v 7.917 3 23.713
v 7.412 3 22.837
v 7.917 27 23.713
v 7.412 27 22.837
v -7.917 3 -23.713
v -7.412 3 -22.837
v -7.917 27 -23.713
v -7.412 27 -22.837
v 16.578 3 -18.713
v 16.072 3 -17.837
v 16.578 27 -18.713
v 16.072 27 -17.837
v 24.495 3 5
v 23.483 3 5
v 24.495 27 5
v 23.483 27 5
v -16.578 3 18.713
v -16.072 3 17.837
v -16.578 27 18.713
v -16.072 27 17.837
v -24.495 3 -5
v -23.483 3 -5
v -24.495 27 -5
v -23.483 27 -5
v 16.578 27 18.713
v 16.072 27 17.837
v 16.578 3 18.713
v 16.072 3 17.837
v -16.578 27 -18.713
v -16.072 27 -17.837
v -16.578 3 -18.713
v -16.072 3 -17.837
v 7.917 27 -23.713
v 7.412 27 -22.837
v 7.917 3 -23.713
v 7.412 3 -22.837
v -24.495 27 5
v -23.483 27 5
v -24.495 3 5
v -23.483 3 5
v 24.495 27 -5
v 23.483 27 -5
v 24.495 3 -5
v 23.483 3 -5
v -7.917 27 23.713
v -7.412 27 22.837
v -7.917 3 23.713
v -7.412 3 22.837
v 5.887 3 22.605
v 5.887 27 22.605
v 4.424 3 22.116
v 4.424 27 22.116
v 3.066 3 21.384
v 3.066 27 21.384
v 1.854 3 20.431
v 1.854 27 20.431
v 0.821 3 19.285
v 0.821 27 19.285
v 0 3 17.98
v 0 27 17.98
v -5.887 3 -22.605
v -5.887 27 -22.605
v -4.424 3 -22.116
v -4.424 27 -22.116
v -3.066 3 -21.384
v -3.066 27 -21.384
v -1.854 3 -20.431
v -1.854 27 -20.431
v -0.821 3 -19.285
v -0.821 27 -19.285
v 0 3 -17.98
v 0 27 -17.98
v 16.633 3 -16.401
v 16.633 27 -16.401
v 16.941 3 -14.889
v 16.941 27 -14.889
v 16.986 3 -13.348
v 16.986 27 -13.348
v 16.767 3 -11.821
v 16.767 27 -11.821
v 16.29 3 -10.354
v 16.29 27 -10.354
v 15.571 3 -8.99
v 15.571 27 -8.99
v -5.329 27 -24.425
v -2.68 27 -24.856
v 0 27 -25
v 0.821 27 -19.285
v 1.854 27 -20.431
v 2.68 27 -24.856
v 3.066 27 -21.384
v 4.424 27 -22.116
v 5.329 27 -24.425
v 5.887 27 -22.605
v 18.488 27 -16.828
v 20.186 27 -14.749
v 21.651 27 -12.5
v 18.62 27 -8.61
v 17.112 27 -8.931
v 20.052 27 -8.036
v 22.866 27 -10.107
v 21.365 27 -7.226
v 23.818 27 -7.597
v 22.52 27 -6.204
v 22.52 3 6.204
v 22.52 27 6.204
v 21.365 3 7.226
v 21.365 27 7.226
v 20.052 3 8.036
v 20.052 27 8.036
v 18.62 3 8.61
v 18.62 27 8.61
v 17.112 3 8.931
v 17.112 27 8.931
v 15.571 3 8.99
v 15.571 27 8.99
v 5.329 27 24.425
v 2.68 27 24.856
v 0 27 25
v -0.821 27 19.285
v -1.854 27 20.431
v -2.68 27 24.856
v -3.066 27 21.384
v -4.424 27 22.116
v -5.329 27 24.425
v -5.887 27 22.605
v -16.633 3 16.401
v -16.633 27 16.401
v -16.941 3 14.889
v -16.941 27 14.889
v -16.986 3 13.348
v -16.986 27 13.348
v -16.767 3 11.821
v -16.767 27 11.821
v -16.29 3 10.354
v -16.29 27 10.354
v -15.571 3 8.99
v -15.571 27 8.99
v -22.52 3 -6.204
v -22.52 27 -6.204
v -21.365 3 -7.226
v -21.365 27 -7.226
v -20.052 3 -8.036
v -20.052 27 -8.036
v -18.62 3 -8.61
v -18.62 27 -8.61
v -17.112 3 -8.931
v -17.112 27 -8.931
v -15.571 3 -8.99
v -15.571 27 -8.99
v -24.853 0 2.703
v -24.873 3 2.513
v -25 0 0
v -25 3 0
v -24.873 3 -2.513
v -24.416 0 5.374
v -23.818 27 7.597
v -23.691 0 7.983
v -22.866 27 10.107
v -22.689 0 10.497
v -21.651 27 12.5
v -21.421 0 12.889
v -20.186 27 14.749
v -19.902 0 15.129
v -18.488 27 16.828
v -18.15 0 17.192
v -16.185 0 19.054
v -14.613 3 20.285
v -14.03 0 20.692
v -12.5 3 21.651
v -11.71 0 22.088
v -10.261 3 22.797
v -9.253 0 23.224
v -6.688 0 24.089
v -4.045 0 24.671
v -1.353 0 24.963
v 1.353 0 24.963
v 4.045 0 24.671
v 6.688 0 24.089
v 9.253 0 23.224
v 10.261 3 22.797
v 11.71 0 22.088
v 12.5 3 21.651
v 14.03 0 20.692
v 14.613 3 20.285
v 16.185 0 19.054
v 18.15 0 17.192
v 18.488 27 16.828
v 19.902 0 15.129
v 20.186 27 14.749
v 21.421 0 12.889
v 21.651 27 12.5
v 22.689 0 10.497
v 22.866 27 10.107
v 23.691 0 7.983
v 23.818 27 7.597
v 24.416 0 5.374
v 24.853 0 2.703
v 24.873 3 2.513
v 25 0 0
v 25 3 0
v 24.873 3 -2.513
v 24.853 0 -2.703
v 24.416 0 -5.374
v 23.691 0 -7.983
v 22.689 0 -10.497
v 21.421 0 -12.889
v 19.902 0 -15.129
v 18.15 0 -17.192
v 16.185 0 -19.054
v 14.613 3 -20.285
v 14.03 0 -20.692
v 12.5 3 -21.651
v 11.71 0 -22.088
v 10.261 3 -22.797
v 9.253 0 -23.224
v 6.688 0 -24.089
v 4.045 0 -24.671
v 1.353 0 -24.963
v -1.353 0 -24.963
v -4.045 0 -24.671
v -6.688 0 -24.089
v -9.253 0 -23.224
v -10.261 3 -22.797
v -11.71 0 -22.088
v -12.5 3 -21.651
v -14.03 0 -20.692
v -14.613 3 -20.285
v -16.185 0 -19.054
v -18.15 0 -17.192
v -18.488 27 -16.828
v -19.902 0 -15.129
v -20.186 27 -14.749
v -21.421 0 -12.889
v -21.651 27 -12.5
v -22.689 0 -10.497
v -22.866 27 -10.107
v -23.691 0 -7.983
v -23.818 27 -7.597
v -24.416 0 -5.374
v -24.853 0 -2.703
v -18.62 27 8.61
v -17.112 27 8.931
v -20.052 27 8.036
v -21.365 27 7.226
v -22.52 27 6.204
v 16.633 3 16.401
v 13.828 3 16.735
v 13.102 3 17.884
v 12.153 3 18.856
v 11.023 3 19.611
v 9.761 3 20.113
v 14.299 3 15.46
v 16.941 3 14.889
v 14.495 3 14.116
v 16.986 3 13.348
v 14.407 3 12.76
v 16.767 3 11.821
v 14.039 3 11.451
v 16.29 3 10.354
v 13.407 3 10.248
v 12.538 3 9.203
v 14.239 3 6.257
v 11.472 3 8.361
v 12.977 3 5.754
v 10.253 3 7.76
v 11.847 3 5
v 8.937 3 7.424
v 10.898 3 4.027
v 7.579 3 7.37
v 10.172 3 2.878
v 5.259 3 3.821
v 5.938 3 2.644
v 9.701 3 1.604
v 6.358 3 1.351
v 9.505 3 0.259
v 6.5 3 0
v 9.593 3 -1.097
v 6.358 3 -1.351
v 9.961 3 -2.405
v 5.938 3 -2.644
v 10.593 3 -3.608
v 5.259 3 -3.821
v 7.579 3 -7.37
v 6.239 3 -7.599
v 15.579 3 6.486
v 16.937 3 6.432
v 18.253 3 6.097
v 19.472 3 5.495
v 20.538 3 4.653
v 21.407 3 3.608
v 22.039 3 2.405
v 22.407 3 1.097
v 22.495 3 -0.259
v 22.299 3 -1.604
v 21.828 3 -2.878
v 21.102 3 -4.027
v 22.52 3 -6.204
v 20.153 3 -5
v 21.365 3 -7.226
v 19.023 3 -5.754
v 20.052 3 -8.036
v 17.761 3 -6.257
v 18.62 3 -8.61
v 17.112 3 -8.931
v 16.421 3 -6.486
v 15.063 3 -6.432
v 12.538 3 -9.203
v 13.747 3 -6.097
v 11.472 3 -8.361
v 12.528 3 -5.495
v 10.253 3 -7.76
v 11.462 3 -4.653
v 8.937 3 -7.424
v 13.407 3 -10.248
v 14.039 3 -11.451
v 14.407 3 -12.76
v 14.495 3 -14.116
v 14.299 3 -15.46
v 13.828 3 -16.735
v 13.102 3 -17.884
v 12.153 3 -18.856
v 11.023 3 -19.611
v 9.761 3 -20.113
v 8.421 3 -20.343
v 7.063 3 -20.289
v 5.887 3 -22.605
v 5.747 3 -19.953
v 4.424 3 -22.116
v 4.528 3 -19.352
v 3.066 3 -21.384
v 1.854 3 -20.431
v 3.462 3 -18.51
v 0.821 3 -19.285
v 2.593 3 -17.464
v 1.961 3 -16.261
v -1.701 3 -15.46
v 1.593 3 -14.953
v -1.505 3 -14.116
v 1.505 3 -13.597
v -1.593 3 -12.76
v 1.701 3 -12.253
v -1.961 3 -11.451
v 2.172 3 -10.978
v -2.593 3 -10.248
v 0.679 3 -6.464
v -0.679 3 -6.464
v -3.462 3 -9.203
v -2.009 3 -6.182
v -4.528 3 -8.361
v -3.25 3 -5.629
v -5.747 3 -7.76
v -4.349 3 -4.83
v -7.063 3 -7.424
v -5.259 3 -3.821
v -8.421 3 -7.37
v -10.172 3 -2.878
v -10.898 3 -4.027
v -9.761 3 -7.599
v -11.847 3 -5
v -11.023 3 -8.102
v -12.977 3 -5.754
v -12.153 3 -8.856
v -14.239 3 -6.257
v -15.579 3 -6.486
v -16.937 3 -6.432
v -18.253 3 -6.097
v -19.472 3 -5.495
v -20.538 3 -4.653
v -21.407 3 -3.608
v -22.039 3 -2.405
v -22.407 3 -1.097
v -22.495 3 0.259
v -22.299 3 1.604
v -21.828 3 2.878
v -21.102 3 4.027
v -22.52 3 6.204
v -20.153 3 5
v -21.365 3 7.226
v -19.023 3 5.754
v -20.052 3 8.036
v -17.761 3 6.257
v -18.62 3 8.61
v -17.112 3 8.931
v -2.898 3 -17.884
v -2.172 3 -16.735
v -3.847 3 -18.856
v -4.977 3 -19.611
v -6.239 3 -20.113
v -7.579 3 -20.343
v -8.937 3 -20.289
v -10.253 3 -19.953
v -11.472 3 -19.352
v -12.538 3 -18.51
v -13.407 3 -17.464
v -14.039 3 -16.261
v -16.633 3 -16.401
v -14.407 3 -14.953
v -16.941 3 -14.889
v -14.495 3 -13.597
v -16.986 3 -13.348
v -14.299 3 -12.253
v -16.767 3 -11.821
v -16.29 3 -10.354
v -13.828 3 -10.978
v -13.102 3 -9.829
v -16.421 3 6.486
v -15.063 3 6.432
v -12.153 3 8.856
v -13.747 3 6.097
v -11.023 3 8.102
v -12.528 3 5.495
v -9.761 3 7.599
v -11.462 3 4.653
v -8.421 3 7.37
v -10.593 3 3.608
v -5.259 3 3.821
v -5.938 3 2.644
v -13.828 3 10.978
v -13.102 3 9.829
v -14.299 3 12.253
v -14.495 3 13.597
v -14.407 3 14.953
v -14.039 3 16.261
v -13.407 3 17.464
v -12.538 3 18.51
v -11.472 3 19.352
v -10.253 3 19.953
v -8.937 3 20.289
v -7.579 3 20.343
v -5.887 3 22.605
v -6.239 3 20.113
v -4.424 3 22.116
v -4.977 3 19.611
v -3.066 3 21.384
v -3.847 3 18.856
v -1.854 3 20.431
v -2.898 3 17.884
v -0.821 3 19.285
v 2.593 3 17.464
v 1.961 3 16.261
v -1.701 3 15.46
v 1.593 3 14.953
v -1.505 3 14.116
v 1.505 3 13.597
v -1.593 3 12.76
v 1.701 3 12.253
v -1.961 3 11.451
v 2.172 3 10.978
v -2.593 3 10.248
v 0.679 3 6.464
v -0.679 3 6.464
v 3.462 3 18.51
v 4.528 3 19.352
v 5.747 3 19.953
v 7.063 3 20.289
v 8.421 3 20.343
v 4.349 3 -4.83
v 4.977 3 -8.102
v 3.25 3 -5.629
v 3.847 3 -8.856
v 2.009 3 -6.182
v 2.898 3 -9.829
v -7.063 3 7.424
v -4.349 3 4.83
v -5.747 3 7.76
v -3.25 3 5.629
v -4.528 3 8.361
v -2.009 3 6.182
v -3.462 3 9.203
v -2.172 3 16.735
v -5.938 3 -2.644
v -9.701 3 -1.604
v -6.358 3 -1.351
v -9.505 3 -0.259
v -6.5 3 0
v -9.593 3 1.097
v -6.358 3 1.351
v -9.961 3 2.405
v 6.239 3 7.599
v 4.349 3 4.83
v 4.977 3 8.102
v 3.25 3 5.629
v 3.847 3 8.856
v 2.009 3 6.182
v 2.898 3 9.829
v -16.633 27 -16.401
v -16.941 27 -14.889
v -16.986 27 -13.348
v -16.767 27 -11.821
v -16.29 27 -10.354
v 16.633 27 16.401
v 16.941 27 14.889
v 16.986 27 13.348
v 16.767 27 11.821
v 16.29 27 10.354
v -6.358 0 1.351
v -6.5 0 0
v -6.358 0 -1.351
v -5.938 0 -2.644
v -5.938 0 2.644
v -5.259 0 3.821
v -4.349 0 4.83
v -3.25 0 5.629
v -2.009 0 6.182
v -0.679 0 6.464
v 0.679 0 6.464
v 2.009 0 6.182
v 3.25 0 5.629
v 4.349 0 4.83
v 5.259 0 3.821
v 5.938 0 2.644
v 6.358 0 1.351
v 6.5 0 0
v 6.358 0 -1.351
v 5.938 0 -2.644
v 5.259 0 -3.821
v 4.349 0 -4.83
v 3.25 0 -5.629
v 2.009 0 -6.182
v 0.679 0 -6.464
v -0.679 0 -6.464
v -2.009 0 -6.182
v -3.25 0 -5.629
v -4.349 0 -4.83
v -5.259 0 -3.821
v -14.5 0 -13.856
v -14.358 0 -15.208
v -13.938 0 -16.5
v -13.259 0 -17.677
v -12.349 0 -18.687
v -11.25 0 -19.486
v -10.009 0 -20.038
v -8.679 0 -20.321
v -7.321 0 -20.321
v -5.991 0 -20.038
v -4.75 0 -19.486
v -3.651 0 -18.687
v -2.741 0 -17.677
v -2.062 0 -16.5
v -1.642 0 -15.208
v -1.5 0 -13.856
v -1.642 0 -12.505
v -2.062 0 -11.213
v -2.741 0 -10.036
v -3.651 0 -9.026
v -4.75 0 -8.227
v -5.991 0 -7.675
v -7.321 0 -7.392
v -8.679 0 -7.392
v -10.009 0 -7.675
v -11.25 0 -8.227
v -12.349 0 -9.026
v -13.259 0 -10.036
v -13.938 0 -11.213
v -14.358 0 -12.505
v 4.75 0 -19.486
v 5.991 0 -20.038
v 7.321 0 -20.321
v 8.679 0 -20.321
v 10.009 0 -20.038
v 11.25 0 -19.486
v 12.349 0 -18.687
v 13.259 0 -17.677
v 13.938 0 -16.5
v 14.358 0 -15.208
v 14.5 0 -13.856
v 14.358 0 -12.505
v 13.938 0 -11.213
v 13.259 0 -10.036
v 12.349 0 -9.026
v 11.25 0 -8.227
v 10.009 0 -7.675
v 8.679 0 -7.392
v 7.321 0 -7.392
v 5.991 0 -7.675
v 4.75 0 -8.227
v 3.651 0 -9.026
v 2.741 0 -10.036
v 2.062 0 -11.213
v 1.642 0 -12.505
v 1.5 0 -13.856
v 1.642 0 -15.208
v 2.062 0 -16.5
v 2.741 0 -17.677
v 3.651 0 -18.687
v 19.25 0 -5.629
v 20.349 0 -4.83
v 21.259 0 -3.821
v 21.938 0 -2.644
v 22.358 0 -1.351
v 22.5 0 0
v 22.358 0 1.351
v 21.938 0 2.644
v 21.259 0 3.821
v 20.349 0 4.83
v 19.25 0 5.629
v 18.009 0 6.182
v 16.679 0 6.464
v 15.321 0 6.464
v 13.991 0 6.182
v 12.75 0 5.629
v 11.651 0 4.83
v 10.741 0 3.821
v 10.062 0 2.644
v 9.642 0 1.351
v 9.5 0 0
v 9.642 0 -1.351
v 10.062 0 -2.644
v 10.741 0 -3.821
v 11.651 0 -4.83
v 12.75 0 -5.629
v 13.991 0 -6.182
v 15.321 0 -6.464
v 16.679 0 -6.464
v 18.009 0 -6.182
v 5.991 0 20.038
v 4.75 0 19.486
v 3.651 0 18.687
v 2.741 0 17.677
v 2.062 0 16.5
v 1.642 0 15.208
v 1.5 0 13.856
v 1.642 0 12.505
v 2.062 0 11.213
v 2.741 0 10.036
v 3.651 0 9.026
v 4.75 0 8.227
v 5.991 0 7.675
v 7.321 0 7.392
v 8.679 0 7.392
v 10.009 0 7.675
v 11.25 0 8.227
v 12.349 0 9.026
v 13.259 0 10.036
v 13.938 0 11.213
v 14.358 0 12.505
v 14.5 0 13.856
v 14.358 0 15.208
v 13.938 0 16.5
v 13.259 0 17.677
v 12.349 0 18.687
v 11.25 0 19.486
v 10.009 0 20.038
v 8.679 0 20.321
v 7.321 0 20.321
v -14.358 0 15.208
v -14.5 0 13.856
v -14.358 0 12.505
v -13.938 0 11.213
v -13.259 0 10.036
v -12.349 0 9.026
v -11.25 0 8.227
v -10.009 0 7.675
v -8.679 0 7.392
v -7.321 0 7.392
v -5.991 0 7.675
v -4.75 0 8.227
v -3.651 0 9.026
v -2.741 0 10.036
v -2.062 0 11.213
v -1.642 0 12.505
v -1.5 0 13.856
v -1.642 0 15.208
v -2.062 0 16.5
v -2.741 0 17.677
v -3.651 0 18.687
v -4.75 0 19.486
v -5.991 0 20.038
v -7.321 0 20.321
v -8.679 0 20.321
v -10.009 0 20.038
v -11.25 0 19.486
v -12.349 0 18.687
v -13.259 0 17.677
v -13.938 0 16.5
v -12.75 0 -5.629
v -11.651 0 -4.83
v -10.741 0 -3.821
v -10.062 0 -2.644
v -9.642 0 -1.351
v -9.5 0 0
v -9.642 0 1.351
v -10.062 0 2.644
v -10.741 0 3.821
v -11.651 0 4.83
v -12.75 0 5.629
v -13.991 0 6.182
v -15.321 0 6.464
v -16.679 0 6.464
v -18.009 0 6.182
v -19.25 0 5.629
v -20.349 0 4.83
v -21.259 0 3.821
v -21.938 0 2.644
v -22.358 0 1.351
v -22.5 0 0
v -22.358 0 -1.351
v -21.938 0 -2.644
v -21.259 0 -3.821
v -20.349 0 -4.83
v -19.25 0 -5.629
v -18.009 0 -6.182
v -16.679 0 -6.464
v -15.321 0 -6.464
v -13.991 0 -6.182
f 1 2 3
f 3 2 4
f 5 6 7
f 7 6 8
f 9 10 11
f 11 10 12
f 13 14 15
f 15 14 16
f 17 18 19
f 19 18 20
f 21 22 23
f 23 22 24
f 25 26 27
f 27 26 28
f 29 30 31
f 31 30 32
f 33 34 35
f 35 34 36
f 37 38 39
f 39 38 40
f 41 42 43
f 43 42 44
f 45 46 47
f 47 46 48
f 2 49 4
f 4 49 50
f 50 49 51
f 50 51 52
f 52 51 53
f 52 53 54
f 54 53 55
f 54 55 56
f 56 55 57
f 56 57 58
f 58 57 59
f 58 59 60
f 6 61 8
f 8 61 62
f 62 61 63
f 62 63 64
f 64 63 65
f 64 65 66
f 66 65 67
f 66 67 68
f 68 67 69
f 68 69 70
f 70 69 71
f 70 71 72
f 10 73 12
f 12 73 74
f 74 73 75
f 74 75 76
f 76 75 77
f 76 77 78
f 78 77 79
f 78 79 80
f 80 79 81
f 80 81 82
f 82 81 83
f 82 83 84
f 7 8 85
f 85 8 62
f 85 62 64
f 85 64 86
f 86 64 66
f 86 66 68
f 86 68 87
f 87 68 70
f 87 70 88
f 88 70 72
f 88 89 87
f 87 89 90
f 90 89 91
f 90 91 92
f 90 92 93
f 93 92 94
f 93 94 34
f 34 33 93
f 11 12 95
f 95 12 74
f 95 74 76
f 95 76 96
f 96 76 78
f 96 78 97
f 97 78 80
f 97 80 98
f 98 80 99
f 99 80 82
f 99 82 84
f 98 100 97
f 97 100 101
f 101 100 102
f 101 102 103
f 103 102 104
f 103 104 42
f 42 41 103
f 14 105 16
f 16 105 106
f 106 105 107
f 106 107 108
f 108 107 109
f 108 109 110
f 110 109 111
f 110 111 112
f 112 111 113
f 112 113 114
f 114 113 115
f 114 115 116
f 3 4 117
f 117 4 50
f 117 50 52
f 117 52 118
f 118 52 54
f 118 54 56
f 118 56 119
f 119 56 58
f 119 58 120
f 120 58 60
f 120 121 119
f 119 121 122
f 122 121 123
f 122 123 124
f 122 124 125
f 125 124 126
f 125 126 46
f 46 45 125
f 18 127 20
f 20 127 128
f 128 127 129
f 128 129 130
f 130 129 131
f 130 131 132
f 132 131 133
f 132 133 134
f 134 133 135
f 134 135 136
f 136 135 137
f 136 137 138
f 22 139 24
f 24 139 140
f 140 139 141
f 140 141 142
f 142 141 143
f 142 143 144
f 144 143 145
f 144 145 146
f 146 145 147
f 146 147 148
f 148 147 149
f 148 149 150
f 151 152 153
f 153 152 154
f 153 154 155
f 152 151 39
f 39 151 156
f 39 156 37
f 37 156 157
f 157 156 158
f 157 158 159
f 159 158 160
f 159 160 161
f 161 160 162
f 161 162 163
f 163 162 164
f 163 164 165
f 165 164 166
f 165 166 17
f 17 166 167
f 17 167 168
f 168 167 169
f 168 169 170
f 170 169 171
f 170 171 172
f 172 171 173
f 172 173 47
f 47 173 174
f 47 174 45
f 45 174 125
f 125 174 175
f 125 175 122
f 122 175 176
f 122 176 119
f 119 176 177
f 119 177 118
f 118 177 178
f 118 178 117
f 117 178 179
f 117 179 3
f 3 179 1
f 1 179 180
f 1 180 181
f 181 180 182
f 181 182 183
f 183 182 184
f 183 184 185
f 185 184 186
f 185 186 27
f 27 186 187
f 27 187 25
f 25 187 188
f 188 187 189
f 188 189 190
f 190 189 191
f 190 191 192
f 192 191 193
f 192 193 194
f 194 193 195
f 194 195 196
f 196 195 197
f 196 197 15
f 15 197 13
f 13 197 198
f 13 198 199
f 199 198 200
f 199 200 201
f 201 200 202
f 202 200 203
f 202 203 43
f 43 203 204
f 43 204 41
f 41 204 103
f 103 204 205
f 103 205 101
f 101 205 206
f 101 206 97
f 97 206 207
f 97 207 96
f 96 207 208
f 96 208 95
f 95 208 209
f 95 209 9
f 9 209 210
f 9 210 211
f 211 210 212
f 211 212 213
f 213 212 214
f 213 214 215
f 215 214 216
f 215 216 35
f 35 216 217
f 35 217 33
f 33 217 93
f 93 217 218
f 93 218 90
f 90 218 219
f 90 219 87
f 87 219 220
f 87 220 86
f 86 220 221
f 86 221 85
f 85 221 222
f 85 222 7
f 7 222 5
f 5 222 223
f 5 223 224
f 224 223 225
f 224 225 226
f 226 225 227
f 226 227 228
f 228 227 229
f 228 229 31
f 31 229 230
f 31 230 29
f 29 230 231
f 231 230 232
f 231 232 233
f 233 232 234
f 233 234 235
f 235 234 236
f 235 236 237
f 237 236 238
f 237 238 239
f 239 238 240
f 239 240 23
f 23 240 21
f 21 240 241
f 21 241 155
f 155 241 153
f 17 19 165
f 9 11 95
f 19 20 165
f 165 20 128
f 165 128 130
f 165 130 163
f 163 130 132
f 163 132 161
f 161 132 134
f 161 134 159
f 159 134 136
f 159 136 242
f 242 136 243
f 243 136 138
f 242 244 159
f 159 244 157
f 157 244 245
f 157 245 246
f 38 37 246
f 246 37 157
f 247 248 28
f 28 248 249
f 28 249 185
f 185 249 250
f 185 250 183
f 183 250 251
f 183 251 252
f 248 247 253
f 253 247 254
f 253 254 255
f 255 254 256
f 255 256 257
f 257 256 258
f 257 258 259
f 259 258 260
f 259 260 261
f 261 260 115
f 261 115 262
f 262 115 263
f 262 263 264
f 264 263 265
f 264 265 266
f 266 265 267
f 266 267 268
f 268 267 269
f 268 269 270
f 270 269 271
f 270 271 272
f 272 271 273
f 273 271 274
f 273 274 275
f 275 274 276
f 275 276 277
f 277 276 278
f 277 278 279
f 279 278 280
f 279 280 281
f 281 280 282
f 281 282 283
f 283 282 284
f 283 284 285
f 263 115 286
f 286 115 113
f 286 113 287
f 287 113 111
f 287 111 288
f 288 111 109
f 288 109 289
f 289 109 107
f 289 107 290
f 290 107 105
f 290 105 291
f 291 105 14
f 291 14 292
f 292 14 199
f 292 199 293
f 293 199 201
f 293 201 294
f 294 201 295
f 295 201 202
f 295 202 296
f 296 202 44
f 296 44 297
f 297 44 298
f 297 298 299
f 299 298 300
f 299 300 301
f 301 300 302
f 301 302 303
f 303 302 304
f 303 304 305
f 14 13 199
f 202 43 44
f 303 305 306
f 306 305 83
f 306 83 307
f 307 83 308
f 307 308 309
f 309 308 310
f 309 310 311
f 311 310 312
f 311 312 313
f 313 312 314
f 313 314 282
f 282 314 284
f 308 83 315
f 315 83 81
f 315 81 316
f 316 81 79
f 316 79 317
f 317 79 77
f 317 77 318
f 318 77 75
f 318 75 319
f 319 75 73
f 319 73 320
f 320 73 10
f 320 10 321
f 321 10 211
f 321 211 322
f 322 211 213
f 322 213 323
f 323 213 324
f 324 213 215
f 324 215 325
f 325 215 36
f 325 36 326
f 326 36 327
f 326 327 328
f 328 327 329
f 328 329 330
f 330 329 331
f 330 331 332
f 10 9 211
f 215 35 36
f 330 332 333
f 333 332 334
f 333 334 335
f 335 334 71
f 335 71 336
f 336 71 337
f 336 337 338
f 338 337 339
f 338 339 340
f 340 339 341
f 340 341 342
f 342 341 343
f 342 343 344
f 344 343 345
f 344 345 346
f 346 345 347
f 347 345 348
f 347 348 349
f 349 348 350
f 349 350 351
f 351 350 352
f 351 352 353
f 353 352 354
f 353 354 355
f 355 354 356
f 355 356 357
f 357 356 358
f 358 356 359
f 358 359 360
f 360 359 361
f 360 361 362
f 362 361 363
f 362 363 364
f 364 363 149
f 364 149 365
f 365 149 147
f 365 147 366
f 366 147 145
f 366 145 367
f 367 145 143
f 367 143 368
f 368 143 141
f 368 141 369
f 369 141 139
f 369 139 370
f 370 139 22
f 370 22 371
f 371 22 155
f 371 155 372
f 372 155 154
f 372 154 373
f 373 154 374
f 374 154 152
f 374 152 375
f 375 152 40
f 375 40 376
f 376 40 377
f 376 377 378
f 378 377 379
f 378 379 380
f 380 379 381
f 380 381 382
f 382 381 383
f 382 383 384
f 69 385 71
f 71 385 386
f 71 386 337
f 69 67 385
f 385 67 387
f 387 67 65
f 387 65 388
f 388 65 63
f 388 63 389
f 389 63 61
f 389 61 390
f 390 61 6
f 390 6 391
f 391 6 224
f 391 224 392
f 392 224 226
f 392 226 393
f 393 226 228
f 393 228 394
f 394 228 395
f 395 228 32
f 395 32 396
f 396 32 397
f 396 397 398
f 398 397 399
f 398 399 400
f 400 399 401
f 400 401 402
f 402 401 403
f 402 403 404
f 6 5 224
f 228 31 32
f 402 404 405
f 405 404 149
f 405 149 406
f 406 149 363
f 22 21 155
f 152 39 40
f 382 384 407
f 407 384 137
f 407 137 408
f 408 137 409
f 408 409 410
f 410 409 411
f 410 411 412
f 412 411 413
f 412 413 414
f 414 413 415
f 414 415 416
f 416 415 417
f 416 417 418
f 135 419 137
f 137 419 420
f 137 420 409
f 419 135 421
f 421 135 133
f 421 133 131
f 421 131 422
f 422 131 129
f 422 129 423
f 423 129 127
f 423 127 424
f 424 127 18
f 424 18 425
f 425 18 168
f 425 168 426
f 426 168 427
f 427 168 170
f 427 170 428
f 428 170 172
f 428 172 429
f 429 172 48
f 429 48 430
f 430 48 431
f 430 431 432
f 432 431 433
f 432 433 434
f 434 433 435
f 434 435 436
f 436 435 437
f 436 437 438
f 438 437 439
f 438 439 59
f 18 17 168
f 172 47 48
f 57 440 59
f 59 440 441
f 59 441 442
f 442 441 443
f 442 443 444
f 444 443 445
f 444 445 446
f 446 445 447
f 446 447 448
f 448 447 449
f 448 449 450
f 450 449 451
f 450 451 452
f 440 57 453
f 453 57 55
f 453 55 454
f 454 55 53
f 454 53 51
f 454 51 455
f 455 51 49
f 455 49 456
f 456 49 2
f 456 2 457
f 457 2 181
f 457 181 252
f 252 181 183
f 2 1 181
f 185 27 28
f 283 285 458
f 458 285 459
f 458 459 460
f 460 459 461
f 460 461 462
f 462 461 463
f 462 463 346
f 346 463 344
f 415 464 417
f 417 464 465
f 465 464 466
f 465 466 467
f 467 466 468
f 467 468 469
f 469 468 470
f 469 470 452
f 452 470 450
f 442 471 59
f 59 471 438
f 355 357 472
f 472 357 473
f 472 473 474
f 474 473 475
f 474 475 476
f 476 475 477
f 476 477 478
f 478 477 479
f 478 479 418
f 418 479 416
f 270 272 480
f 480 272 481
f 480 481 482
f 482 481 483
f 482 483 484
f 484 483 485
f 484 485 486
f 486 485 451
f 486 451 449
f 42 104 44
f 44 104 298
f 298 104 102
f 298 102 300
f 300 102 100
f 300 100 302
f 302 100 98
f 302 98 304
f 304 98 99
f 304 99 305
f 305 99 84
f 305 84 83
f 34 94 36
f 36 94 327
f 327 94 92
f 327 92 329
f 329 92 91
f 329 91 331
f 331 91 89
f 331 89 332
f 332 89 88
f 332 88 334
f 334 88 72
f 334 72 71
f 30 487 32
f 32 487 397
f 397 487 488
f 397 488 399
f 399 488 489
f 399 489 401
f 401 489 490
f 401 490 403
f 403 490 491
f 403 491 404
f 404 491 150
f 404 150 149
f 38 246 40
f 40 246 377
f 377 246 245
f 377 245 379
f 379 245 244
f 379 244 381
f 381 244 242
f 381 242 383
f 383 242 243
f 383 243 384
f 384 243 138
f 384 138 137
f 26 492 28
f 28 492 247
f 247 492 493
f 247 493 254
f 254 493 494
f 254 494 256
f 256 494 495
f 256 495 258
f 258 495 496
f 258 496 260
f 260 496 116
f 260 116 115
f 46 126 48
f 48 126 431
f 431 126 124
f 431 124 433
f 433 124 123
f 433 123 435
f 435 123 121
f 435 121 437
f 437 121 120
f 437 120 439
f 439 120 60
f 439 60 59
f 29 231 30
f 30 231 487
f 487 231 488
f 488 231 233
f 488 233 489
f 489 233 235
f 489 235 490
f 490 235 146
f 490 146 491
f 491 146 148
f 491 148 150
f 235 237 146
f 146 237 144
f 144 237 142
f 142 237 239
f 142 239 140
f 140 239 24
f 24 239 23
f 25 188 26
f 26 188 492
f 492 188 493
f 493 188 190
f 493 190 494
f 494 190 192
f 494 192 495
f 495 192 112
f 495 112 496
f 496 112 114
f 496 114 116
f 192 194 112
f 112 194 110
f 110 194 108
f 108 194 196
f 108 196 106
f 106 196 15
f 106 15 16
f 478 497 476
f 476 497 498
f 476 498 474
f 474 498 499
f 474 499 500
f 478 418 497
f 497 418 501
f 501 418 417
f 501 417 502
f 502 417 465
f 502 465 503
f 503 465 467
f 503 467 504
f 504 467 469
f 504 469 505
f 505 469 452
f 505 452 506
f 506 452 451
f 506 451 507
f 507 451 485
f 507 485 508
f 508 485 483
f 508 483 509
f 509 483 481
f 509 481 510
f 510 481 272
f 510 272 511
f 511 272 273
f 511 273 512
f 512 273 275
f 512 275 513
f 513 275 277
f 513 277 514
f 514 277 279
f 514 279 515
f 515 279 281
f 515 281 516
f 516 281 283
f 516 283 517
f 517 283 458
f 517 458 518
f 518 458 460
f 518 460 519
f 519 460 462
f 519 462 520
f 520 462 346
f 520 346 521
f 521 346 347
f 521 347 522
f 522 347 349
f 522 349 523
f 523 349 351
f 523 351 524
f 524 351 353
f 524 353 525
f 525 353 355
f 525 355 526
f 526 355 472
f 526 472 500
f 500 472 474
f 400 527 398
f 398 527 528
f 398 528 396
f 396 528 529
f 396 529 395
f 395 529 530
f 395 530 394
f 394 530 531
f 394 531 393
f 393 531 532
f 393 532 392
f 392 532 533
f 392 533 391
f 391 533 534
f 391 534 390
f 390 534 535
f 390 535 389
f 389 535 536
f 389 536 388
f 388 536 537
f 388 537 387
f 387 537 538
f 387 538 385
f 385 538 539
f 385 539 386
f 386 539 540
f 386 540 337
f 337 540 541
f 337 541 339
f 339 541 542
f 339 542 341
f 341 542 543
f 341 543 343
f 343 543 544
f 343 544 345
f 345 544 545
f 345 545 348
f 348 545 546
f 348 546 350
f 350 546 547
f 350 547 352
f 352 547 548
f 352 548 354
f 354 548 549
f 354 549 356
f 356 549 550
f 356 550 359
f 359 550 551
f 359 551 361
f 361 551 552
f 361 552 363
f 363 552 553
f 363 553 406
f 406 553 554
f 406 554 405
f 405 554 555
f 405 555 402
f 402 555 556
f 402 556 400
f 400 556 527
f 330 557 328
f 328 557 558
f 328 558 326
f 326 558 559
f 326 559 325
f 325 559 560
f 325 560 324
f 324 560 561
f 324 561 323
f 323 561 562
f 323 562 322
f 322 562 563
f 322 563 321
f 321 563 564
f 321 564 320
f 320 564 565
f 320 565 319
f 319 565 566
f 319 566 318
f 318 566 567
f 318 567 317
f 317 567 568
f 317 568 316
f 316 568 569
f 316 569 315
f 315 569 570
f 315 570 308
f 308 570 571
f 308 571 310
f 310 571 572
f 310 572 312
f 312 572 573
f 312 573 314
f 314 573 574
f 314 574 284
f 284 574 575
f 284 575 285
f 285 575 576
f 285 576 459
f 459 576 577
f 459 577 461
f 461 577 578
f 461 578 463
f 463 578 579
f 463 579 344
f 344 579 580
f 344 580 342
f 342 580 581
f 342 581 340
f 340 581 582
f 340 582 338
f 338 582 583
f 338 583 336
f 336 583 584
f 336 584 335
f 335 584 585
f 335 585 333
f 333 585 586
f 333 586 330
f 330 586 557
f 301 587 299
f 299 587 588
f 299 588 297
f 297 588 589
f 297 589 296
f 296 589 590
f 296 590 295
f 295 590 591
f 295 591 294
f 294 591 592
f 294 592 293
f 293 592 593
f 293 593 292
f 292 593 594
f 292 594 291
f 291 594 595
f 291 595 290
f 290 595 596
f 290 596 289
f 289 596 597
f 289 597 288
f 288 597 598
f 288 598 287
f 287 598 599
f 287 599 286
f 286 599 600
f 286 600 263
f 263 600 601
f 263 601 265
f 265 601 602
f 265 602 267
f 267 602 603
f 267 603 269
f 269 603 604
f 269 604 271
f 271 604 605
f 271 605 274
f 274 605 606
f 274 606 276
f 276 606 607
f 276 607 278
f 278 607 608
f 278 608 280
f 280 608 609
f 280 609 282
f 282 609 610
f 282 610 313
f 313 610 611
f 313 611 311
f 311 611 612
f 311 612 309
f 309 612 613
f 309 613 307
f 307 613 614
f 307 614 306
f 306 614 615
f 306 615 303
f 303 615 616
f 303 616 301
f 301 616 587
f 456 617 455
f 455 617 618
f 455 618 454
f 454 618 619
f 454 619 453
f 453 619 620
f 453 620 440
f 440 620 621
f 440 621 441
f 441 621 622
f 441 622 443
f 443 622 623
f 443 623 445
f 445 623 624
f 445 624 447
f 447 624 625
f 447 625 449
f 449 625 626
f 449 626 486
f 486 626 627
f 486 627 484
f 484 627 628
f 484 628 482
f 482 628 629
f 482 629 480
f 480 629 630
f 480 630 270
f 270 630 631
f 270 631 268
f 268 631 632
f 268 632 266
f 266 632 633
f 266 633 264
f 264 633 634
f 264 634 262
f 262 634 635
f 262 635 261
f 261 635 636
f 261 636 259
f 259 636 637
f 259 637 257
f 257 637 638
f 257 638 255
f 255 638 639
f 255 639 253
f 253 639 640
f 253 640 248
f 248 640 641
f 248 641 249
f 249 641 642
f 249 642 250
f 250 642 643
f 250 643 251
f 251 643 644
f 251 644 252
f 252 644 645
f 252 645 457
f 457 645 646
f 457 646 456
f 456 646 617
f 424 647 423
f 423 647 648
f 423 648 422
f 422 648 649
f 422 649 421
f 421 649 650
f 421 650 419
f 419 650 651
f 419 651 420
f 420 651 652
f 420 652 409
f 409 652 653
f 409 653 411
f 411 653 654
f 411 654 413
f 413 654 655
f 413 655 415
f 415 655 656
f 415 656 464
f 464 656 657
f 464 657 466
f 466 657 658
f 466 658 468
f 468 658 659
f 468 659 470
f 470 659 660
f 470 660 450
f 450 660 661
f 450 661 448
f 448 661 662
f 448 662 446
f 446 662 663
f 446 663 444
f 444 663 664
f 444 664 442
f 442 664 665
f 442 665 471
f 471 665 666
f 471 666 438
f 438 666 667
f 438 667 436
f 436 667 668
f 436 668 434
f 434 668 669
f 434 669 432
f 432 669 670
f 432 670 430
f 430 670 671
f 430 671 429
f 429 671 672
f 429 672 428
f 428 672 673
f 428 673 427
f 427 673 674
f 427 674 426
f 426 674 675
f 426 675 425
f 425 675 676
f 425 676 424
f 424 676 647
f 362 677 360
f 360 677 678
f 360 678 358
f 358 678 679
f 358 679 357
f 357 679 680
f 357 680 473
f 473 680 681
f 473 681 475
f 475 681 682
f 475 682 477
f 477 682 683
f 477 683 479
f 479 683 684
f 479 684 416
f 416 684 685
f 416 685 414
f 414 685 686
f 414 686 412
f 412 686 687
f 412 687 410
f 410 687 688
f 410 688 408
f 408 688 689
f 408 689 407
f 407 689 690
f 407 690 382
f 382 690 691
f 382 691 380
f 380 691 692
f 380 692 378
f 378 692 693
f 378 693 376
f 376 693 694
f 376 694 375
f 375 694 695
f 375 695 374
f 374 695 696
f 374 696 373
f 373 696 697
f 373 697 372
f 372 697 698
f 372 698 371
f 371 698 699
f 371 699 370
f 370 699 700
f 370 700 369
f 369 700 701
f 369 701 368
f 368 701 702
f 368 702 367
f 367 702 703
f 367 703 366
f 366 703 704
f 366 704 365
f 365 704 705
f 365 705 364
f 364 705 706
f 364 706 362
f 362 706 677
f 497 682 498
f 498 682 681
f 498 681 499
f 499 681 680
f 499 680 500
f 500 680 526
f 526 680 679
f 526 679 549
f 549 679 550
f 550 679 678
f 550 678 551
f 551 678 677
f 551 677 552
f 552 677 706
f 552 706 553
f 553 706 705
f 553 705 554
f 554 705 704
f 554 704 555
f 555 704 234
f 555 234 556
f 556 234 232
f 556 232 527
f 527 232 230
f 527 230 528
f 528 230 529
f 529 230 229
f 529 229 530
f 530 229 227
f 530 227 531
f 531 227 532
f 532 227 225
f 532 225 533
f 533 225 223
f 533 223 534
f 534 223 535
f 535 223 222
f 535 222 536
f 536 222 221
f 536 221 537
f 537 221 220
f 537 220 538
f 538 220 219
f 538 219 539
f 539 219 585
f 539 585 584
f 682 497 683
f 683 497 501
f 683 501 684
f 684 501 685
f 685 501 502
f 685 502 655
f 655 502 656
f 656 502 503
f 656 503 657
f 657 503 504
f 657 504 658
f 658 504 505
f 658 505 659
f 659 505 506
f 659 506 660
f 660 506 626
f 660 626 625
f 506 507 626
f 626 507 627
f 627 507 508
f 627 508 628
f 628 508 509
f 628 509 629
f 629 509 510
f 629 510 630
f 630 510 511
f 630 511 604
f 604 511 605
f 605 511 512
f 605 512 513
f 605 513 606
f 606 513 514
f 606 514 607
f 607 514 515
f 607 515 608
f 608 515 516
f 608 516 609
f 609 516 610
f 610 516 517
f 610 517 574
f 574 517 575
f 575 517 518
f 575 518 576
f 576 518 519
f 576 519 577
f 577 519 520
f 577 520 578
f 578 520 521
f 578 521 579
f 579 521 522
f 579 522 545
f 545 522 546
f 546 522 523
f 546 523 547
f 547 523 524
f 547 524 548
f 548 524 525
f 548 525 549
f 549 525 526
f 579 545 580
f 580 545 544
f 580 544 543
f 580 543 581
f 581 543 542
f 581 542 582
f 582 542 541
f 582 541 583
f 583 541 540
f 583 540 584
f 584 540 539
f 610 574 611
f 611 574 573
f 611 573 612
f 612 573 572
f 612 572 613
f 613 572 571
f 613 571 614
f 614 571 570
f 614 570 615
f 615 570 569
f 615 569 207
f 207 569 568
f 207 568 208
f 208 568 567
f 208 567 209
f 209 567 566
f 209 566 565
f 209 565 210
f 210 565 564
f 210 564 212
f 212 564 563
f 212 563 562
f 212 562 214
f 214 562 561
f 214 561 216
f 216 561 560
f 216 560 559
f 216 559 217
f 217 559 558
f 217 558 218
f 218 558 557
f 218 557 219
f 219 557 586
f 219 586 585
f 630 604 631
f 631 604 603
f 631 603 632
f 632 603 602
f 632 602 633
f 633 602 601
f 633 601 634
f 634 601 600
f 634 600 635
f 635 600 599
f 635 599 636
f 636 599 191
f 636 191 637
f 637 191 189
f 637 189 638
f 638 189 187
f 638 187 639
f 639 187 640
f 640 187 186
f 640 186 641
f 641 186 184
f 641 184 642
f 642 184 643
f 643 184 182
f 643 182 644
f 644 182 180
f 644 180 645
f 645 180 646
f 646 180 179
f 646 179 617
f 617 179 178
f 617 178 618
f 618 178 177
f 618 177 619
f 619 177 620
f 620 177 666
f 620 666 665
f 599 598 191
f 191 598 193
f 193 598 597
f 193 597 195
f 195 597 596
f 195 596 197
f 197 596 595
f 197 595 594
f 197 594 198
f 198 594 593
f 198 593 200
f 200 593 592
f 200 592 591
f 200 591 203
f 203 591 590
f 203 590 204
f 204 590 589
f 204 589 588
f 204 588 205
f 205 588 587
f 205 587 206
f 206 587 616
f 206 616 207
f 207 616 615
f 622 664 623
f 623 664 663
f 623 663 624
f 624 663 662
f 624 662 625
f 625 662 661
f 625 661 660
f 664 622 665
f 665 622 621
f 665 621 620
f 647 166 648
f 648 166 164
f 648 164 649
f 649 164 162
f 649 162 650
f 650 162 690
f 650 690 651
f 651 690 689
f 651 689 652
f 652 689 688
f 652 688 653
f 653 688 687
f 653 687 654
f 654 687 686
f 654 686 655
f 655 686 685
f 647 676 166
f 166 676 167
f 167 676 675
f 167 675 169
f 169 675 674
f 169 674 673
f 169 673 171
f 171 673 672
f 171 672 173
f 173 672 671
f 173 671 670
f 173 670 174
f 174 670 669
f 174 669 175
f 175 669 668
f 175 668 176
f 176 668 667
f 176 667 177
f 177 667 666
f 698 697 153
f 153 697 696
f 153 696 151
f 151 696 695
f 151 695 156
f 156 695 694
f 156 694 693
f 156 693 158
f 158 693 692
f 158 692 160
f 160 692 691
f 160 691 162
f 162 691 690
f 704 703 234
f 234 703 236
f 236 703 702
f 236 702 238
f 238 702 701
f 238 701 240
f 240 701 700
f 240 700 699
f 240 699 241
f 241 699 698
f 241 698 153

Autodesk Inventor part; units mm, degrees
ref_plane "YZ Plane" through (0, 0, 0) normal (1, 0, 0) x (0, 1, 0)
ref_plane "XZ Plane" through (0, 0, 0) normal (0, 1, 0) x (-1, 0, 0)
ref_plane "XY Plane" through (0, 0, 0) normal (0, 0, 1) x (1, 0, 0)
sketch "스케치1" plane through (0, 0, 0) normal (0, 1, 0) x (-1, 0, 0)
  circle A0 centre (0, 0) radius 25
  circle A1 centre (16, 0) radius 6.5
  circle A2 centre (8, 13.8564) radius 6.5
  circle A3 centre (-8, 13.8564) radius 6.5
  circle A4 centre (-16, 0) radius 6.5
  circle A5 centre (-8, -13.8564) radius 6.5
  circle A6 centre (8, -13.8564) radius 6.5
  circle A7 centre (0, 0) radius 6.5
  dimension "d0" = 50
  dimension "d1" = 13
  dimension "d2" = 16
  dimension "d5" = 360
  dimension "d7" = 13
extrude "돌출1" add sketch "스케치1" along normal blind 3
sketch "스케치2" plane through (0, 3, 0) normal (0, 1, 0) x (1, 0, 0)
  circle A0 centre (-16, 0) radius 6.5 projected
  circle A1 centre (-8, 13.8564) radius 6.5 projected
  circle A2 centre (8, 13.8564) radius 6.5 projected
  circle A3 centre (8, -13.8564) radius 6.5 projected
  circle A4 centre (-8, -13.8564) radius 6.5 projected
  circle A5 centre (0, 0) radius 25
  arc A6 (-15.5707, 8.9898) -> (-15.5707, -8.9898) centre (-16, 0) ccw
  arc A7 (0, 17.9795) -> (-15.5707, 8.9898) centre (-8, 13.8564) ccw
  arc A8 (15.5707, 8.9898) -> (0, 17.9795) centre (8, 13.8564) ccw
  arc A9 (15.5707, -8.9898) -> (15.5707, 8.9898) centre (16, 0) ccw
  arc A10 (0, -17.9795) -> (15.5707, -8.9898) centre (8, -13.8564) ccw
  arc A11 (-15.5707, -8.9898) -> (0, -17.9795) centre (-8, -13.8564) ccw
  line L0 (25, -5) -> (-25, -5)
  line L1 (-25, -5) -> (-25, 5)
  line L2 (-25, 5) -> (25, 5)
  line L3 (25, 5) -> (25, -5)
  line L4 (25, -5) -> (-25, 5) construction
  line L5 (-25, -5) -> (25, 5) construction
  line L6 (-8.1699, -24.1506) -> (-16.8301, -19.1506)
  line L7 (-16.8301, -19.1506) -> (8.1699, 24.1506)
  line L8 (16.8301, 19.1506) -> (-8.1699, -24.1506)
  line L9 (8.1699, 24.1506) -> (16.8301, 19.1506)
  line L10 (16.8301, -19.1506) -> (8.1699, -24.1506)
  line L11 (8.1699, -24.1506) -> (-16.8301, 19.1506)
  line L12 (-8.1699, 24.1506) -> (16.8301, -19.1506)
  line L13 (-16.8301, 19.1506) -> (-8.1699, 24.1506)
  line L14 (25, 5) -> (25, -5)
  line L15 (25, -5) -> (-25, -5)
  line L16 (-25, 5) -> (25, 5)
  line L17 (-25, -5) -> (-25, 5)
  line L18 (8.1699, 24.1506) -> (16.8301, 19.1506)
  line L19 (16.8301, 19.1506) -> (-8.1699, -24.1506)
  line L20 (-16.8301, -19.1506) -> (8.1699, 24.1506)
  line L21 (-8.1699, -24.1506) -> (-16.8301, -19.1506)
  line L22 (-16.8301, 19.1506) -> (-8.1699, 24.1506)
  line L23 (-8.1699, 24.1506) -> (16.8301, -19.1506)
  line L24 (8.1699, -24.1506) -> (-16.8301, 19.1506)
  line L25 (16.8301, -19.1506) -> (8.1699, -24.1506)
  point P0 (16, 0)
  dimension "d17" = 50
  dimension "d18" = 10
  dimension "d21" = 360
extrude "돌출2" add sketch "스케치2" along normal blind 24 contours L2 A5 L11 A7 A6 | A6 A5 L2 | L0 A5 A6 | A6 A11 L7 A5 L0 | L11 A5 A7 | A11 A5 L7 | A5 L12 A7 | L2 A5 A9 | A9 A8 L8 A5 L2 | L12 A5 L7 A8 A7 | A11 L8 A5 | L0 A5 L12 A10 A9 | A9 A5 L0 | A11 A10 L11 A5 L8 | L7 A5 A8 | A10 A5 L11 | A8 A5 L8 | L12 A5 A10
extrude "돌출3" cut sketch "스케치2" along normal blind 27 contours A0 L0 L2 | A0 L2 L11 L7 L0 | A0 L0 A6 L2 | L11 A1 L12 L7 L2 | L2 L7 L11 | L7 L11 L0 | L0 L11 L8 A4 L7 | A6 A5 L2 | L7 L12 L2 | L2 L12 L8 L0 L11 L7 | L11 A1 L12 | L0 A5 A6 | L0 L8 L11 | A4 L8 L7 | L1 L2 A5 | A5 L0 L1 | L12 L7 A2 L8 L2 | L2 L8 L12 | L11 A7 L12 A1 | L8 L12 L0 | L0 L12 A3 L11 L8 | A4 L8 A11 L7 | L11 A5 A7 | L11 L13 A5 | L2 A9 L0 L12 L8 | L7 A2 L8 | A11 A5 L7 | A5 L6 L7 | A3 L12 L11 | L13 L12 A5 | A5 L12 A7 | L2 A5 A9 | L7 A8 L8 A2 | A11 L8 A5 | A5 L8 L6 | A9 A5 L0 | A3 L12 A10 L11 | L3 L0 A5 | A5 L2 L3 | L7 A5 A8 | A10 A5 L11 | L7 L9 A5 | A8 A5 L8 | A5 L9 L8 | A5 L10 L11 | L12 A5 A10 | L12 L10 A5
properties part number "hand_joy_cover"
